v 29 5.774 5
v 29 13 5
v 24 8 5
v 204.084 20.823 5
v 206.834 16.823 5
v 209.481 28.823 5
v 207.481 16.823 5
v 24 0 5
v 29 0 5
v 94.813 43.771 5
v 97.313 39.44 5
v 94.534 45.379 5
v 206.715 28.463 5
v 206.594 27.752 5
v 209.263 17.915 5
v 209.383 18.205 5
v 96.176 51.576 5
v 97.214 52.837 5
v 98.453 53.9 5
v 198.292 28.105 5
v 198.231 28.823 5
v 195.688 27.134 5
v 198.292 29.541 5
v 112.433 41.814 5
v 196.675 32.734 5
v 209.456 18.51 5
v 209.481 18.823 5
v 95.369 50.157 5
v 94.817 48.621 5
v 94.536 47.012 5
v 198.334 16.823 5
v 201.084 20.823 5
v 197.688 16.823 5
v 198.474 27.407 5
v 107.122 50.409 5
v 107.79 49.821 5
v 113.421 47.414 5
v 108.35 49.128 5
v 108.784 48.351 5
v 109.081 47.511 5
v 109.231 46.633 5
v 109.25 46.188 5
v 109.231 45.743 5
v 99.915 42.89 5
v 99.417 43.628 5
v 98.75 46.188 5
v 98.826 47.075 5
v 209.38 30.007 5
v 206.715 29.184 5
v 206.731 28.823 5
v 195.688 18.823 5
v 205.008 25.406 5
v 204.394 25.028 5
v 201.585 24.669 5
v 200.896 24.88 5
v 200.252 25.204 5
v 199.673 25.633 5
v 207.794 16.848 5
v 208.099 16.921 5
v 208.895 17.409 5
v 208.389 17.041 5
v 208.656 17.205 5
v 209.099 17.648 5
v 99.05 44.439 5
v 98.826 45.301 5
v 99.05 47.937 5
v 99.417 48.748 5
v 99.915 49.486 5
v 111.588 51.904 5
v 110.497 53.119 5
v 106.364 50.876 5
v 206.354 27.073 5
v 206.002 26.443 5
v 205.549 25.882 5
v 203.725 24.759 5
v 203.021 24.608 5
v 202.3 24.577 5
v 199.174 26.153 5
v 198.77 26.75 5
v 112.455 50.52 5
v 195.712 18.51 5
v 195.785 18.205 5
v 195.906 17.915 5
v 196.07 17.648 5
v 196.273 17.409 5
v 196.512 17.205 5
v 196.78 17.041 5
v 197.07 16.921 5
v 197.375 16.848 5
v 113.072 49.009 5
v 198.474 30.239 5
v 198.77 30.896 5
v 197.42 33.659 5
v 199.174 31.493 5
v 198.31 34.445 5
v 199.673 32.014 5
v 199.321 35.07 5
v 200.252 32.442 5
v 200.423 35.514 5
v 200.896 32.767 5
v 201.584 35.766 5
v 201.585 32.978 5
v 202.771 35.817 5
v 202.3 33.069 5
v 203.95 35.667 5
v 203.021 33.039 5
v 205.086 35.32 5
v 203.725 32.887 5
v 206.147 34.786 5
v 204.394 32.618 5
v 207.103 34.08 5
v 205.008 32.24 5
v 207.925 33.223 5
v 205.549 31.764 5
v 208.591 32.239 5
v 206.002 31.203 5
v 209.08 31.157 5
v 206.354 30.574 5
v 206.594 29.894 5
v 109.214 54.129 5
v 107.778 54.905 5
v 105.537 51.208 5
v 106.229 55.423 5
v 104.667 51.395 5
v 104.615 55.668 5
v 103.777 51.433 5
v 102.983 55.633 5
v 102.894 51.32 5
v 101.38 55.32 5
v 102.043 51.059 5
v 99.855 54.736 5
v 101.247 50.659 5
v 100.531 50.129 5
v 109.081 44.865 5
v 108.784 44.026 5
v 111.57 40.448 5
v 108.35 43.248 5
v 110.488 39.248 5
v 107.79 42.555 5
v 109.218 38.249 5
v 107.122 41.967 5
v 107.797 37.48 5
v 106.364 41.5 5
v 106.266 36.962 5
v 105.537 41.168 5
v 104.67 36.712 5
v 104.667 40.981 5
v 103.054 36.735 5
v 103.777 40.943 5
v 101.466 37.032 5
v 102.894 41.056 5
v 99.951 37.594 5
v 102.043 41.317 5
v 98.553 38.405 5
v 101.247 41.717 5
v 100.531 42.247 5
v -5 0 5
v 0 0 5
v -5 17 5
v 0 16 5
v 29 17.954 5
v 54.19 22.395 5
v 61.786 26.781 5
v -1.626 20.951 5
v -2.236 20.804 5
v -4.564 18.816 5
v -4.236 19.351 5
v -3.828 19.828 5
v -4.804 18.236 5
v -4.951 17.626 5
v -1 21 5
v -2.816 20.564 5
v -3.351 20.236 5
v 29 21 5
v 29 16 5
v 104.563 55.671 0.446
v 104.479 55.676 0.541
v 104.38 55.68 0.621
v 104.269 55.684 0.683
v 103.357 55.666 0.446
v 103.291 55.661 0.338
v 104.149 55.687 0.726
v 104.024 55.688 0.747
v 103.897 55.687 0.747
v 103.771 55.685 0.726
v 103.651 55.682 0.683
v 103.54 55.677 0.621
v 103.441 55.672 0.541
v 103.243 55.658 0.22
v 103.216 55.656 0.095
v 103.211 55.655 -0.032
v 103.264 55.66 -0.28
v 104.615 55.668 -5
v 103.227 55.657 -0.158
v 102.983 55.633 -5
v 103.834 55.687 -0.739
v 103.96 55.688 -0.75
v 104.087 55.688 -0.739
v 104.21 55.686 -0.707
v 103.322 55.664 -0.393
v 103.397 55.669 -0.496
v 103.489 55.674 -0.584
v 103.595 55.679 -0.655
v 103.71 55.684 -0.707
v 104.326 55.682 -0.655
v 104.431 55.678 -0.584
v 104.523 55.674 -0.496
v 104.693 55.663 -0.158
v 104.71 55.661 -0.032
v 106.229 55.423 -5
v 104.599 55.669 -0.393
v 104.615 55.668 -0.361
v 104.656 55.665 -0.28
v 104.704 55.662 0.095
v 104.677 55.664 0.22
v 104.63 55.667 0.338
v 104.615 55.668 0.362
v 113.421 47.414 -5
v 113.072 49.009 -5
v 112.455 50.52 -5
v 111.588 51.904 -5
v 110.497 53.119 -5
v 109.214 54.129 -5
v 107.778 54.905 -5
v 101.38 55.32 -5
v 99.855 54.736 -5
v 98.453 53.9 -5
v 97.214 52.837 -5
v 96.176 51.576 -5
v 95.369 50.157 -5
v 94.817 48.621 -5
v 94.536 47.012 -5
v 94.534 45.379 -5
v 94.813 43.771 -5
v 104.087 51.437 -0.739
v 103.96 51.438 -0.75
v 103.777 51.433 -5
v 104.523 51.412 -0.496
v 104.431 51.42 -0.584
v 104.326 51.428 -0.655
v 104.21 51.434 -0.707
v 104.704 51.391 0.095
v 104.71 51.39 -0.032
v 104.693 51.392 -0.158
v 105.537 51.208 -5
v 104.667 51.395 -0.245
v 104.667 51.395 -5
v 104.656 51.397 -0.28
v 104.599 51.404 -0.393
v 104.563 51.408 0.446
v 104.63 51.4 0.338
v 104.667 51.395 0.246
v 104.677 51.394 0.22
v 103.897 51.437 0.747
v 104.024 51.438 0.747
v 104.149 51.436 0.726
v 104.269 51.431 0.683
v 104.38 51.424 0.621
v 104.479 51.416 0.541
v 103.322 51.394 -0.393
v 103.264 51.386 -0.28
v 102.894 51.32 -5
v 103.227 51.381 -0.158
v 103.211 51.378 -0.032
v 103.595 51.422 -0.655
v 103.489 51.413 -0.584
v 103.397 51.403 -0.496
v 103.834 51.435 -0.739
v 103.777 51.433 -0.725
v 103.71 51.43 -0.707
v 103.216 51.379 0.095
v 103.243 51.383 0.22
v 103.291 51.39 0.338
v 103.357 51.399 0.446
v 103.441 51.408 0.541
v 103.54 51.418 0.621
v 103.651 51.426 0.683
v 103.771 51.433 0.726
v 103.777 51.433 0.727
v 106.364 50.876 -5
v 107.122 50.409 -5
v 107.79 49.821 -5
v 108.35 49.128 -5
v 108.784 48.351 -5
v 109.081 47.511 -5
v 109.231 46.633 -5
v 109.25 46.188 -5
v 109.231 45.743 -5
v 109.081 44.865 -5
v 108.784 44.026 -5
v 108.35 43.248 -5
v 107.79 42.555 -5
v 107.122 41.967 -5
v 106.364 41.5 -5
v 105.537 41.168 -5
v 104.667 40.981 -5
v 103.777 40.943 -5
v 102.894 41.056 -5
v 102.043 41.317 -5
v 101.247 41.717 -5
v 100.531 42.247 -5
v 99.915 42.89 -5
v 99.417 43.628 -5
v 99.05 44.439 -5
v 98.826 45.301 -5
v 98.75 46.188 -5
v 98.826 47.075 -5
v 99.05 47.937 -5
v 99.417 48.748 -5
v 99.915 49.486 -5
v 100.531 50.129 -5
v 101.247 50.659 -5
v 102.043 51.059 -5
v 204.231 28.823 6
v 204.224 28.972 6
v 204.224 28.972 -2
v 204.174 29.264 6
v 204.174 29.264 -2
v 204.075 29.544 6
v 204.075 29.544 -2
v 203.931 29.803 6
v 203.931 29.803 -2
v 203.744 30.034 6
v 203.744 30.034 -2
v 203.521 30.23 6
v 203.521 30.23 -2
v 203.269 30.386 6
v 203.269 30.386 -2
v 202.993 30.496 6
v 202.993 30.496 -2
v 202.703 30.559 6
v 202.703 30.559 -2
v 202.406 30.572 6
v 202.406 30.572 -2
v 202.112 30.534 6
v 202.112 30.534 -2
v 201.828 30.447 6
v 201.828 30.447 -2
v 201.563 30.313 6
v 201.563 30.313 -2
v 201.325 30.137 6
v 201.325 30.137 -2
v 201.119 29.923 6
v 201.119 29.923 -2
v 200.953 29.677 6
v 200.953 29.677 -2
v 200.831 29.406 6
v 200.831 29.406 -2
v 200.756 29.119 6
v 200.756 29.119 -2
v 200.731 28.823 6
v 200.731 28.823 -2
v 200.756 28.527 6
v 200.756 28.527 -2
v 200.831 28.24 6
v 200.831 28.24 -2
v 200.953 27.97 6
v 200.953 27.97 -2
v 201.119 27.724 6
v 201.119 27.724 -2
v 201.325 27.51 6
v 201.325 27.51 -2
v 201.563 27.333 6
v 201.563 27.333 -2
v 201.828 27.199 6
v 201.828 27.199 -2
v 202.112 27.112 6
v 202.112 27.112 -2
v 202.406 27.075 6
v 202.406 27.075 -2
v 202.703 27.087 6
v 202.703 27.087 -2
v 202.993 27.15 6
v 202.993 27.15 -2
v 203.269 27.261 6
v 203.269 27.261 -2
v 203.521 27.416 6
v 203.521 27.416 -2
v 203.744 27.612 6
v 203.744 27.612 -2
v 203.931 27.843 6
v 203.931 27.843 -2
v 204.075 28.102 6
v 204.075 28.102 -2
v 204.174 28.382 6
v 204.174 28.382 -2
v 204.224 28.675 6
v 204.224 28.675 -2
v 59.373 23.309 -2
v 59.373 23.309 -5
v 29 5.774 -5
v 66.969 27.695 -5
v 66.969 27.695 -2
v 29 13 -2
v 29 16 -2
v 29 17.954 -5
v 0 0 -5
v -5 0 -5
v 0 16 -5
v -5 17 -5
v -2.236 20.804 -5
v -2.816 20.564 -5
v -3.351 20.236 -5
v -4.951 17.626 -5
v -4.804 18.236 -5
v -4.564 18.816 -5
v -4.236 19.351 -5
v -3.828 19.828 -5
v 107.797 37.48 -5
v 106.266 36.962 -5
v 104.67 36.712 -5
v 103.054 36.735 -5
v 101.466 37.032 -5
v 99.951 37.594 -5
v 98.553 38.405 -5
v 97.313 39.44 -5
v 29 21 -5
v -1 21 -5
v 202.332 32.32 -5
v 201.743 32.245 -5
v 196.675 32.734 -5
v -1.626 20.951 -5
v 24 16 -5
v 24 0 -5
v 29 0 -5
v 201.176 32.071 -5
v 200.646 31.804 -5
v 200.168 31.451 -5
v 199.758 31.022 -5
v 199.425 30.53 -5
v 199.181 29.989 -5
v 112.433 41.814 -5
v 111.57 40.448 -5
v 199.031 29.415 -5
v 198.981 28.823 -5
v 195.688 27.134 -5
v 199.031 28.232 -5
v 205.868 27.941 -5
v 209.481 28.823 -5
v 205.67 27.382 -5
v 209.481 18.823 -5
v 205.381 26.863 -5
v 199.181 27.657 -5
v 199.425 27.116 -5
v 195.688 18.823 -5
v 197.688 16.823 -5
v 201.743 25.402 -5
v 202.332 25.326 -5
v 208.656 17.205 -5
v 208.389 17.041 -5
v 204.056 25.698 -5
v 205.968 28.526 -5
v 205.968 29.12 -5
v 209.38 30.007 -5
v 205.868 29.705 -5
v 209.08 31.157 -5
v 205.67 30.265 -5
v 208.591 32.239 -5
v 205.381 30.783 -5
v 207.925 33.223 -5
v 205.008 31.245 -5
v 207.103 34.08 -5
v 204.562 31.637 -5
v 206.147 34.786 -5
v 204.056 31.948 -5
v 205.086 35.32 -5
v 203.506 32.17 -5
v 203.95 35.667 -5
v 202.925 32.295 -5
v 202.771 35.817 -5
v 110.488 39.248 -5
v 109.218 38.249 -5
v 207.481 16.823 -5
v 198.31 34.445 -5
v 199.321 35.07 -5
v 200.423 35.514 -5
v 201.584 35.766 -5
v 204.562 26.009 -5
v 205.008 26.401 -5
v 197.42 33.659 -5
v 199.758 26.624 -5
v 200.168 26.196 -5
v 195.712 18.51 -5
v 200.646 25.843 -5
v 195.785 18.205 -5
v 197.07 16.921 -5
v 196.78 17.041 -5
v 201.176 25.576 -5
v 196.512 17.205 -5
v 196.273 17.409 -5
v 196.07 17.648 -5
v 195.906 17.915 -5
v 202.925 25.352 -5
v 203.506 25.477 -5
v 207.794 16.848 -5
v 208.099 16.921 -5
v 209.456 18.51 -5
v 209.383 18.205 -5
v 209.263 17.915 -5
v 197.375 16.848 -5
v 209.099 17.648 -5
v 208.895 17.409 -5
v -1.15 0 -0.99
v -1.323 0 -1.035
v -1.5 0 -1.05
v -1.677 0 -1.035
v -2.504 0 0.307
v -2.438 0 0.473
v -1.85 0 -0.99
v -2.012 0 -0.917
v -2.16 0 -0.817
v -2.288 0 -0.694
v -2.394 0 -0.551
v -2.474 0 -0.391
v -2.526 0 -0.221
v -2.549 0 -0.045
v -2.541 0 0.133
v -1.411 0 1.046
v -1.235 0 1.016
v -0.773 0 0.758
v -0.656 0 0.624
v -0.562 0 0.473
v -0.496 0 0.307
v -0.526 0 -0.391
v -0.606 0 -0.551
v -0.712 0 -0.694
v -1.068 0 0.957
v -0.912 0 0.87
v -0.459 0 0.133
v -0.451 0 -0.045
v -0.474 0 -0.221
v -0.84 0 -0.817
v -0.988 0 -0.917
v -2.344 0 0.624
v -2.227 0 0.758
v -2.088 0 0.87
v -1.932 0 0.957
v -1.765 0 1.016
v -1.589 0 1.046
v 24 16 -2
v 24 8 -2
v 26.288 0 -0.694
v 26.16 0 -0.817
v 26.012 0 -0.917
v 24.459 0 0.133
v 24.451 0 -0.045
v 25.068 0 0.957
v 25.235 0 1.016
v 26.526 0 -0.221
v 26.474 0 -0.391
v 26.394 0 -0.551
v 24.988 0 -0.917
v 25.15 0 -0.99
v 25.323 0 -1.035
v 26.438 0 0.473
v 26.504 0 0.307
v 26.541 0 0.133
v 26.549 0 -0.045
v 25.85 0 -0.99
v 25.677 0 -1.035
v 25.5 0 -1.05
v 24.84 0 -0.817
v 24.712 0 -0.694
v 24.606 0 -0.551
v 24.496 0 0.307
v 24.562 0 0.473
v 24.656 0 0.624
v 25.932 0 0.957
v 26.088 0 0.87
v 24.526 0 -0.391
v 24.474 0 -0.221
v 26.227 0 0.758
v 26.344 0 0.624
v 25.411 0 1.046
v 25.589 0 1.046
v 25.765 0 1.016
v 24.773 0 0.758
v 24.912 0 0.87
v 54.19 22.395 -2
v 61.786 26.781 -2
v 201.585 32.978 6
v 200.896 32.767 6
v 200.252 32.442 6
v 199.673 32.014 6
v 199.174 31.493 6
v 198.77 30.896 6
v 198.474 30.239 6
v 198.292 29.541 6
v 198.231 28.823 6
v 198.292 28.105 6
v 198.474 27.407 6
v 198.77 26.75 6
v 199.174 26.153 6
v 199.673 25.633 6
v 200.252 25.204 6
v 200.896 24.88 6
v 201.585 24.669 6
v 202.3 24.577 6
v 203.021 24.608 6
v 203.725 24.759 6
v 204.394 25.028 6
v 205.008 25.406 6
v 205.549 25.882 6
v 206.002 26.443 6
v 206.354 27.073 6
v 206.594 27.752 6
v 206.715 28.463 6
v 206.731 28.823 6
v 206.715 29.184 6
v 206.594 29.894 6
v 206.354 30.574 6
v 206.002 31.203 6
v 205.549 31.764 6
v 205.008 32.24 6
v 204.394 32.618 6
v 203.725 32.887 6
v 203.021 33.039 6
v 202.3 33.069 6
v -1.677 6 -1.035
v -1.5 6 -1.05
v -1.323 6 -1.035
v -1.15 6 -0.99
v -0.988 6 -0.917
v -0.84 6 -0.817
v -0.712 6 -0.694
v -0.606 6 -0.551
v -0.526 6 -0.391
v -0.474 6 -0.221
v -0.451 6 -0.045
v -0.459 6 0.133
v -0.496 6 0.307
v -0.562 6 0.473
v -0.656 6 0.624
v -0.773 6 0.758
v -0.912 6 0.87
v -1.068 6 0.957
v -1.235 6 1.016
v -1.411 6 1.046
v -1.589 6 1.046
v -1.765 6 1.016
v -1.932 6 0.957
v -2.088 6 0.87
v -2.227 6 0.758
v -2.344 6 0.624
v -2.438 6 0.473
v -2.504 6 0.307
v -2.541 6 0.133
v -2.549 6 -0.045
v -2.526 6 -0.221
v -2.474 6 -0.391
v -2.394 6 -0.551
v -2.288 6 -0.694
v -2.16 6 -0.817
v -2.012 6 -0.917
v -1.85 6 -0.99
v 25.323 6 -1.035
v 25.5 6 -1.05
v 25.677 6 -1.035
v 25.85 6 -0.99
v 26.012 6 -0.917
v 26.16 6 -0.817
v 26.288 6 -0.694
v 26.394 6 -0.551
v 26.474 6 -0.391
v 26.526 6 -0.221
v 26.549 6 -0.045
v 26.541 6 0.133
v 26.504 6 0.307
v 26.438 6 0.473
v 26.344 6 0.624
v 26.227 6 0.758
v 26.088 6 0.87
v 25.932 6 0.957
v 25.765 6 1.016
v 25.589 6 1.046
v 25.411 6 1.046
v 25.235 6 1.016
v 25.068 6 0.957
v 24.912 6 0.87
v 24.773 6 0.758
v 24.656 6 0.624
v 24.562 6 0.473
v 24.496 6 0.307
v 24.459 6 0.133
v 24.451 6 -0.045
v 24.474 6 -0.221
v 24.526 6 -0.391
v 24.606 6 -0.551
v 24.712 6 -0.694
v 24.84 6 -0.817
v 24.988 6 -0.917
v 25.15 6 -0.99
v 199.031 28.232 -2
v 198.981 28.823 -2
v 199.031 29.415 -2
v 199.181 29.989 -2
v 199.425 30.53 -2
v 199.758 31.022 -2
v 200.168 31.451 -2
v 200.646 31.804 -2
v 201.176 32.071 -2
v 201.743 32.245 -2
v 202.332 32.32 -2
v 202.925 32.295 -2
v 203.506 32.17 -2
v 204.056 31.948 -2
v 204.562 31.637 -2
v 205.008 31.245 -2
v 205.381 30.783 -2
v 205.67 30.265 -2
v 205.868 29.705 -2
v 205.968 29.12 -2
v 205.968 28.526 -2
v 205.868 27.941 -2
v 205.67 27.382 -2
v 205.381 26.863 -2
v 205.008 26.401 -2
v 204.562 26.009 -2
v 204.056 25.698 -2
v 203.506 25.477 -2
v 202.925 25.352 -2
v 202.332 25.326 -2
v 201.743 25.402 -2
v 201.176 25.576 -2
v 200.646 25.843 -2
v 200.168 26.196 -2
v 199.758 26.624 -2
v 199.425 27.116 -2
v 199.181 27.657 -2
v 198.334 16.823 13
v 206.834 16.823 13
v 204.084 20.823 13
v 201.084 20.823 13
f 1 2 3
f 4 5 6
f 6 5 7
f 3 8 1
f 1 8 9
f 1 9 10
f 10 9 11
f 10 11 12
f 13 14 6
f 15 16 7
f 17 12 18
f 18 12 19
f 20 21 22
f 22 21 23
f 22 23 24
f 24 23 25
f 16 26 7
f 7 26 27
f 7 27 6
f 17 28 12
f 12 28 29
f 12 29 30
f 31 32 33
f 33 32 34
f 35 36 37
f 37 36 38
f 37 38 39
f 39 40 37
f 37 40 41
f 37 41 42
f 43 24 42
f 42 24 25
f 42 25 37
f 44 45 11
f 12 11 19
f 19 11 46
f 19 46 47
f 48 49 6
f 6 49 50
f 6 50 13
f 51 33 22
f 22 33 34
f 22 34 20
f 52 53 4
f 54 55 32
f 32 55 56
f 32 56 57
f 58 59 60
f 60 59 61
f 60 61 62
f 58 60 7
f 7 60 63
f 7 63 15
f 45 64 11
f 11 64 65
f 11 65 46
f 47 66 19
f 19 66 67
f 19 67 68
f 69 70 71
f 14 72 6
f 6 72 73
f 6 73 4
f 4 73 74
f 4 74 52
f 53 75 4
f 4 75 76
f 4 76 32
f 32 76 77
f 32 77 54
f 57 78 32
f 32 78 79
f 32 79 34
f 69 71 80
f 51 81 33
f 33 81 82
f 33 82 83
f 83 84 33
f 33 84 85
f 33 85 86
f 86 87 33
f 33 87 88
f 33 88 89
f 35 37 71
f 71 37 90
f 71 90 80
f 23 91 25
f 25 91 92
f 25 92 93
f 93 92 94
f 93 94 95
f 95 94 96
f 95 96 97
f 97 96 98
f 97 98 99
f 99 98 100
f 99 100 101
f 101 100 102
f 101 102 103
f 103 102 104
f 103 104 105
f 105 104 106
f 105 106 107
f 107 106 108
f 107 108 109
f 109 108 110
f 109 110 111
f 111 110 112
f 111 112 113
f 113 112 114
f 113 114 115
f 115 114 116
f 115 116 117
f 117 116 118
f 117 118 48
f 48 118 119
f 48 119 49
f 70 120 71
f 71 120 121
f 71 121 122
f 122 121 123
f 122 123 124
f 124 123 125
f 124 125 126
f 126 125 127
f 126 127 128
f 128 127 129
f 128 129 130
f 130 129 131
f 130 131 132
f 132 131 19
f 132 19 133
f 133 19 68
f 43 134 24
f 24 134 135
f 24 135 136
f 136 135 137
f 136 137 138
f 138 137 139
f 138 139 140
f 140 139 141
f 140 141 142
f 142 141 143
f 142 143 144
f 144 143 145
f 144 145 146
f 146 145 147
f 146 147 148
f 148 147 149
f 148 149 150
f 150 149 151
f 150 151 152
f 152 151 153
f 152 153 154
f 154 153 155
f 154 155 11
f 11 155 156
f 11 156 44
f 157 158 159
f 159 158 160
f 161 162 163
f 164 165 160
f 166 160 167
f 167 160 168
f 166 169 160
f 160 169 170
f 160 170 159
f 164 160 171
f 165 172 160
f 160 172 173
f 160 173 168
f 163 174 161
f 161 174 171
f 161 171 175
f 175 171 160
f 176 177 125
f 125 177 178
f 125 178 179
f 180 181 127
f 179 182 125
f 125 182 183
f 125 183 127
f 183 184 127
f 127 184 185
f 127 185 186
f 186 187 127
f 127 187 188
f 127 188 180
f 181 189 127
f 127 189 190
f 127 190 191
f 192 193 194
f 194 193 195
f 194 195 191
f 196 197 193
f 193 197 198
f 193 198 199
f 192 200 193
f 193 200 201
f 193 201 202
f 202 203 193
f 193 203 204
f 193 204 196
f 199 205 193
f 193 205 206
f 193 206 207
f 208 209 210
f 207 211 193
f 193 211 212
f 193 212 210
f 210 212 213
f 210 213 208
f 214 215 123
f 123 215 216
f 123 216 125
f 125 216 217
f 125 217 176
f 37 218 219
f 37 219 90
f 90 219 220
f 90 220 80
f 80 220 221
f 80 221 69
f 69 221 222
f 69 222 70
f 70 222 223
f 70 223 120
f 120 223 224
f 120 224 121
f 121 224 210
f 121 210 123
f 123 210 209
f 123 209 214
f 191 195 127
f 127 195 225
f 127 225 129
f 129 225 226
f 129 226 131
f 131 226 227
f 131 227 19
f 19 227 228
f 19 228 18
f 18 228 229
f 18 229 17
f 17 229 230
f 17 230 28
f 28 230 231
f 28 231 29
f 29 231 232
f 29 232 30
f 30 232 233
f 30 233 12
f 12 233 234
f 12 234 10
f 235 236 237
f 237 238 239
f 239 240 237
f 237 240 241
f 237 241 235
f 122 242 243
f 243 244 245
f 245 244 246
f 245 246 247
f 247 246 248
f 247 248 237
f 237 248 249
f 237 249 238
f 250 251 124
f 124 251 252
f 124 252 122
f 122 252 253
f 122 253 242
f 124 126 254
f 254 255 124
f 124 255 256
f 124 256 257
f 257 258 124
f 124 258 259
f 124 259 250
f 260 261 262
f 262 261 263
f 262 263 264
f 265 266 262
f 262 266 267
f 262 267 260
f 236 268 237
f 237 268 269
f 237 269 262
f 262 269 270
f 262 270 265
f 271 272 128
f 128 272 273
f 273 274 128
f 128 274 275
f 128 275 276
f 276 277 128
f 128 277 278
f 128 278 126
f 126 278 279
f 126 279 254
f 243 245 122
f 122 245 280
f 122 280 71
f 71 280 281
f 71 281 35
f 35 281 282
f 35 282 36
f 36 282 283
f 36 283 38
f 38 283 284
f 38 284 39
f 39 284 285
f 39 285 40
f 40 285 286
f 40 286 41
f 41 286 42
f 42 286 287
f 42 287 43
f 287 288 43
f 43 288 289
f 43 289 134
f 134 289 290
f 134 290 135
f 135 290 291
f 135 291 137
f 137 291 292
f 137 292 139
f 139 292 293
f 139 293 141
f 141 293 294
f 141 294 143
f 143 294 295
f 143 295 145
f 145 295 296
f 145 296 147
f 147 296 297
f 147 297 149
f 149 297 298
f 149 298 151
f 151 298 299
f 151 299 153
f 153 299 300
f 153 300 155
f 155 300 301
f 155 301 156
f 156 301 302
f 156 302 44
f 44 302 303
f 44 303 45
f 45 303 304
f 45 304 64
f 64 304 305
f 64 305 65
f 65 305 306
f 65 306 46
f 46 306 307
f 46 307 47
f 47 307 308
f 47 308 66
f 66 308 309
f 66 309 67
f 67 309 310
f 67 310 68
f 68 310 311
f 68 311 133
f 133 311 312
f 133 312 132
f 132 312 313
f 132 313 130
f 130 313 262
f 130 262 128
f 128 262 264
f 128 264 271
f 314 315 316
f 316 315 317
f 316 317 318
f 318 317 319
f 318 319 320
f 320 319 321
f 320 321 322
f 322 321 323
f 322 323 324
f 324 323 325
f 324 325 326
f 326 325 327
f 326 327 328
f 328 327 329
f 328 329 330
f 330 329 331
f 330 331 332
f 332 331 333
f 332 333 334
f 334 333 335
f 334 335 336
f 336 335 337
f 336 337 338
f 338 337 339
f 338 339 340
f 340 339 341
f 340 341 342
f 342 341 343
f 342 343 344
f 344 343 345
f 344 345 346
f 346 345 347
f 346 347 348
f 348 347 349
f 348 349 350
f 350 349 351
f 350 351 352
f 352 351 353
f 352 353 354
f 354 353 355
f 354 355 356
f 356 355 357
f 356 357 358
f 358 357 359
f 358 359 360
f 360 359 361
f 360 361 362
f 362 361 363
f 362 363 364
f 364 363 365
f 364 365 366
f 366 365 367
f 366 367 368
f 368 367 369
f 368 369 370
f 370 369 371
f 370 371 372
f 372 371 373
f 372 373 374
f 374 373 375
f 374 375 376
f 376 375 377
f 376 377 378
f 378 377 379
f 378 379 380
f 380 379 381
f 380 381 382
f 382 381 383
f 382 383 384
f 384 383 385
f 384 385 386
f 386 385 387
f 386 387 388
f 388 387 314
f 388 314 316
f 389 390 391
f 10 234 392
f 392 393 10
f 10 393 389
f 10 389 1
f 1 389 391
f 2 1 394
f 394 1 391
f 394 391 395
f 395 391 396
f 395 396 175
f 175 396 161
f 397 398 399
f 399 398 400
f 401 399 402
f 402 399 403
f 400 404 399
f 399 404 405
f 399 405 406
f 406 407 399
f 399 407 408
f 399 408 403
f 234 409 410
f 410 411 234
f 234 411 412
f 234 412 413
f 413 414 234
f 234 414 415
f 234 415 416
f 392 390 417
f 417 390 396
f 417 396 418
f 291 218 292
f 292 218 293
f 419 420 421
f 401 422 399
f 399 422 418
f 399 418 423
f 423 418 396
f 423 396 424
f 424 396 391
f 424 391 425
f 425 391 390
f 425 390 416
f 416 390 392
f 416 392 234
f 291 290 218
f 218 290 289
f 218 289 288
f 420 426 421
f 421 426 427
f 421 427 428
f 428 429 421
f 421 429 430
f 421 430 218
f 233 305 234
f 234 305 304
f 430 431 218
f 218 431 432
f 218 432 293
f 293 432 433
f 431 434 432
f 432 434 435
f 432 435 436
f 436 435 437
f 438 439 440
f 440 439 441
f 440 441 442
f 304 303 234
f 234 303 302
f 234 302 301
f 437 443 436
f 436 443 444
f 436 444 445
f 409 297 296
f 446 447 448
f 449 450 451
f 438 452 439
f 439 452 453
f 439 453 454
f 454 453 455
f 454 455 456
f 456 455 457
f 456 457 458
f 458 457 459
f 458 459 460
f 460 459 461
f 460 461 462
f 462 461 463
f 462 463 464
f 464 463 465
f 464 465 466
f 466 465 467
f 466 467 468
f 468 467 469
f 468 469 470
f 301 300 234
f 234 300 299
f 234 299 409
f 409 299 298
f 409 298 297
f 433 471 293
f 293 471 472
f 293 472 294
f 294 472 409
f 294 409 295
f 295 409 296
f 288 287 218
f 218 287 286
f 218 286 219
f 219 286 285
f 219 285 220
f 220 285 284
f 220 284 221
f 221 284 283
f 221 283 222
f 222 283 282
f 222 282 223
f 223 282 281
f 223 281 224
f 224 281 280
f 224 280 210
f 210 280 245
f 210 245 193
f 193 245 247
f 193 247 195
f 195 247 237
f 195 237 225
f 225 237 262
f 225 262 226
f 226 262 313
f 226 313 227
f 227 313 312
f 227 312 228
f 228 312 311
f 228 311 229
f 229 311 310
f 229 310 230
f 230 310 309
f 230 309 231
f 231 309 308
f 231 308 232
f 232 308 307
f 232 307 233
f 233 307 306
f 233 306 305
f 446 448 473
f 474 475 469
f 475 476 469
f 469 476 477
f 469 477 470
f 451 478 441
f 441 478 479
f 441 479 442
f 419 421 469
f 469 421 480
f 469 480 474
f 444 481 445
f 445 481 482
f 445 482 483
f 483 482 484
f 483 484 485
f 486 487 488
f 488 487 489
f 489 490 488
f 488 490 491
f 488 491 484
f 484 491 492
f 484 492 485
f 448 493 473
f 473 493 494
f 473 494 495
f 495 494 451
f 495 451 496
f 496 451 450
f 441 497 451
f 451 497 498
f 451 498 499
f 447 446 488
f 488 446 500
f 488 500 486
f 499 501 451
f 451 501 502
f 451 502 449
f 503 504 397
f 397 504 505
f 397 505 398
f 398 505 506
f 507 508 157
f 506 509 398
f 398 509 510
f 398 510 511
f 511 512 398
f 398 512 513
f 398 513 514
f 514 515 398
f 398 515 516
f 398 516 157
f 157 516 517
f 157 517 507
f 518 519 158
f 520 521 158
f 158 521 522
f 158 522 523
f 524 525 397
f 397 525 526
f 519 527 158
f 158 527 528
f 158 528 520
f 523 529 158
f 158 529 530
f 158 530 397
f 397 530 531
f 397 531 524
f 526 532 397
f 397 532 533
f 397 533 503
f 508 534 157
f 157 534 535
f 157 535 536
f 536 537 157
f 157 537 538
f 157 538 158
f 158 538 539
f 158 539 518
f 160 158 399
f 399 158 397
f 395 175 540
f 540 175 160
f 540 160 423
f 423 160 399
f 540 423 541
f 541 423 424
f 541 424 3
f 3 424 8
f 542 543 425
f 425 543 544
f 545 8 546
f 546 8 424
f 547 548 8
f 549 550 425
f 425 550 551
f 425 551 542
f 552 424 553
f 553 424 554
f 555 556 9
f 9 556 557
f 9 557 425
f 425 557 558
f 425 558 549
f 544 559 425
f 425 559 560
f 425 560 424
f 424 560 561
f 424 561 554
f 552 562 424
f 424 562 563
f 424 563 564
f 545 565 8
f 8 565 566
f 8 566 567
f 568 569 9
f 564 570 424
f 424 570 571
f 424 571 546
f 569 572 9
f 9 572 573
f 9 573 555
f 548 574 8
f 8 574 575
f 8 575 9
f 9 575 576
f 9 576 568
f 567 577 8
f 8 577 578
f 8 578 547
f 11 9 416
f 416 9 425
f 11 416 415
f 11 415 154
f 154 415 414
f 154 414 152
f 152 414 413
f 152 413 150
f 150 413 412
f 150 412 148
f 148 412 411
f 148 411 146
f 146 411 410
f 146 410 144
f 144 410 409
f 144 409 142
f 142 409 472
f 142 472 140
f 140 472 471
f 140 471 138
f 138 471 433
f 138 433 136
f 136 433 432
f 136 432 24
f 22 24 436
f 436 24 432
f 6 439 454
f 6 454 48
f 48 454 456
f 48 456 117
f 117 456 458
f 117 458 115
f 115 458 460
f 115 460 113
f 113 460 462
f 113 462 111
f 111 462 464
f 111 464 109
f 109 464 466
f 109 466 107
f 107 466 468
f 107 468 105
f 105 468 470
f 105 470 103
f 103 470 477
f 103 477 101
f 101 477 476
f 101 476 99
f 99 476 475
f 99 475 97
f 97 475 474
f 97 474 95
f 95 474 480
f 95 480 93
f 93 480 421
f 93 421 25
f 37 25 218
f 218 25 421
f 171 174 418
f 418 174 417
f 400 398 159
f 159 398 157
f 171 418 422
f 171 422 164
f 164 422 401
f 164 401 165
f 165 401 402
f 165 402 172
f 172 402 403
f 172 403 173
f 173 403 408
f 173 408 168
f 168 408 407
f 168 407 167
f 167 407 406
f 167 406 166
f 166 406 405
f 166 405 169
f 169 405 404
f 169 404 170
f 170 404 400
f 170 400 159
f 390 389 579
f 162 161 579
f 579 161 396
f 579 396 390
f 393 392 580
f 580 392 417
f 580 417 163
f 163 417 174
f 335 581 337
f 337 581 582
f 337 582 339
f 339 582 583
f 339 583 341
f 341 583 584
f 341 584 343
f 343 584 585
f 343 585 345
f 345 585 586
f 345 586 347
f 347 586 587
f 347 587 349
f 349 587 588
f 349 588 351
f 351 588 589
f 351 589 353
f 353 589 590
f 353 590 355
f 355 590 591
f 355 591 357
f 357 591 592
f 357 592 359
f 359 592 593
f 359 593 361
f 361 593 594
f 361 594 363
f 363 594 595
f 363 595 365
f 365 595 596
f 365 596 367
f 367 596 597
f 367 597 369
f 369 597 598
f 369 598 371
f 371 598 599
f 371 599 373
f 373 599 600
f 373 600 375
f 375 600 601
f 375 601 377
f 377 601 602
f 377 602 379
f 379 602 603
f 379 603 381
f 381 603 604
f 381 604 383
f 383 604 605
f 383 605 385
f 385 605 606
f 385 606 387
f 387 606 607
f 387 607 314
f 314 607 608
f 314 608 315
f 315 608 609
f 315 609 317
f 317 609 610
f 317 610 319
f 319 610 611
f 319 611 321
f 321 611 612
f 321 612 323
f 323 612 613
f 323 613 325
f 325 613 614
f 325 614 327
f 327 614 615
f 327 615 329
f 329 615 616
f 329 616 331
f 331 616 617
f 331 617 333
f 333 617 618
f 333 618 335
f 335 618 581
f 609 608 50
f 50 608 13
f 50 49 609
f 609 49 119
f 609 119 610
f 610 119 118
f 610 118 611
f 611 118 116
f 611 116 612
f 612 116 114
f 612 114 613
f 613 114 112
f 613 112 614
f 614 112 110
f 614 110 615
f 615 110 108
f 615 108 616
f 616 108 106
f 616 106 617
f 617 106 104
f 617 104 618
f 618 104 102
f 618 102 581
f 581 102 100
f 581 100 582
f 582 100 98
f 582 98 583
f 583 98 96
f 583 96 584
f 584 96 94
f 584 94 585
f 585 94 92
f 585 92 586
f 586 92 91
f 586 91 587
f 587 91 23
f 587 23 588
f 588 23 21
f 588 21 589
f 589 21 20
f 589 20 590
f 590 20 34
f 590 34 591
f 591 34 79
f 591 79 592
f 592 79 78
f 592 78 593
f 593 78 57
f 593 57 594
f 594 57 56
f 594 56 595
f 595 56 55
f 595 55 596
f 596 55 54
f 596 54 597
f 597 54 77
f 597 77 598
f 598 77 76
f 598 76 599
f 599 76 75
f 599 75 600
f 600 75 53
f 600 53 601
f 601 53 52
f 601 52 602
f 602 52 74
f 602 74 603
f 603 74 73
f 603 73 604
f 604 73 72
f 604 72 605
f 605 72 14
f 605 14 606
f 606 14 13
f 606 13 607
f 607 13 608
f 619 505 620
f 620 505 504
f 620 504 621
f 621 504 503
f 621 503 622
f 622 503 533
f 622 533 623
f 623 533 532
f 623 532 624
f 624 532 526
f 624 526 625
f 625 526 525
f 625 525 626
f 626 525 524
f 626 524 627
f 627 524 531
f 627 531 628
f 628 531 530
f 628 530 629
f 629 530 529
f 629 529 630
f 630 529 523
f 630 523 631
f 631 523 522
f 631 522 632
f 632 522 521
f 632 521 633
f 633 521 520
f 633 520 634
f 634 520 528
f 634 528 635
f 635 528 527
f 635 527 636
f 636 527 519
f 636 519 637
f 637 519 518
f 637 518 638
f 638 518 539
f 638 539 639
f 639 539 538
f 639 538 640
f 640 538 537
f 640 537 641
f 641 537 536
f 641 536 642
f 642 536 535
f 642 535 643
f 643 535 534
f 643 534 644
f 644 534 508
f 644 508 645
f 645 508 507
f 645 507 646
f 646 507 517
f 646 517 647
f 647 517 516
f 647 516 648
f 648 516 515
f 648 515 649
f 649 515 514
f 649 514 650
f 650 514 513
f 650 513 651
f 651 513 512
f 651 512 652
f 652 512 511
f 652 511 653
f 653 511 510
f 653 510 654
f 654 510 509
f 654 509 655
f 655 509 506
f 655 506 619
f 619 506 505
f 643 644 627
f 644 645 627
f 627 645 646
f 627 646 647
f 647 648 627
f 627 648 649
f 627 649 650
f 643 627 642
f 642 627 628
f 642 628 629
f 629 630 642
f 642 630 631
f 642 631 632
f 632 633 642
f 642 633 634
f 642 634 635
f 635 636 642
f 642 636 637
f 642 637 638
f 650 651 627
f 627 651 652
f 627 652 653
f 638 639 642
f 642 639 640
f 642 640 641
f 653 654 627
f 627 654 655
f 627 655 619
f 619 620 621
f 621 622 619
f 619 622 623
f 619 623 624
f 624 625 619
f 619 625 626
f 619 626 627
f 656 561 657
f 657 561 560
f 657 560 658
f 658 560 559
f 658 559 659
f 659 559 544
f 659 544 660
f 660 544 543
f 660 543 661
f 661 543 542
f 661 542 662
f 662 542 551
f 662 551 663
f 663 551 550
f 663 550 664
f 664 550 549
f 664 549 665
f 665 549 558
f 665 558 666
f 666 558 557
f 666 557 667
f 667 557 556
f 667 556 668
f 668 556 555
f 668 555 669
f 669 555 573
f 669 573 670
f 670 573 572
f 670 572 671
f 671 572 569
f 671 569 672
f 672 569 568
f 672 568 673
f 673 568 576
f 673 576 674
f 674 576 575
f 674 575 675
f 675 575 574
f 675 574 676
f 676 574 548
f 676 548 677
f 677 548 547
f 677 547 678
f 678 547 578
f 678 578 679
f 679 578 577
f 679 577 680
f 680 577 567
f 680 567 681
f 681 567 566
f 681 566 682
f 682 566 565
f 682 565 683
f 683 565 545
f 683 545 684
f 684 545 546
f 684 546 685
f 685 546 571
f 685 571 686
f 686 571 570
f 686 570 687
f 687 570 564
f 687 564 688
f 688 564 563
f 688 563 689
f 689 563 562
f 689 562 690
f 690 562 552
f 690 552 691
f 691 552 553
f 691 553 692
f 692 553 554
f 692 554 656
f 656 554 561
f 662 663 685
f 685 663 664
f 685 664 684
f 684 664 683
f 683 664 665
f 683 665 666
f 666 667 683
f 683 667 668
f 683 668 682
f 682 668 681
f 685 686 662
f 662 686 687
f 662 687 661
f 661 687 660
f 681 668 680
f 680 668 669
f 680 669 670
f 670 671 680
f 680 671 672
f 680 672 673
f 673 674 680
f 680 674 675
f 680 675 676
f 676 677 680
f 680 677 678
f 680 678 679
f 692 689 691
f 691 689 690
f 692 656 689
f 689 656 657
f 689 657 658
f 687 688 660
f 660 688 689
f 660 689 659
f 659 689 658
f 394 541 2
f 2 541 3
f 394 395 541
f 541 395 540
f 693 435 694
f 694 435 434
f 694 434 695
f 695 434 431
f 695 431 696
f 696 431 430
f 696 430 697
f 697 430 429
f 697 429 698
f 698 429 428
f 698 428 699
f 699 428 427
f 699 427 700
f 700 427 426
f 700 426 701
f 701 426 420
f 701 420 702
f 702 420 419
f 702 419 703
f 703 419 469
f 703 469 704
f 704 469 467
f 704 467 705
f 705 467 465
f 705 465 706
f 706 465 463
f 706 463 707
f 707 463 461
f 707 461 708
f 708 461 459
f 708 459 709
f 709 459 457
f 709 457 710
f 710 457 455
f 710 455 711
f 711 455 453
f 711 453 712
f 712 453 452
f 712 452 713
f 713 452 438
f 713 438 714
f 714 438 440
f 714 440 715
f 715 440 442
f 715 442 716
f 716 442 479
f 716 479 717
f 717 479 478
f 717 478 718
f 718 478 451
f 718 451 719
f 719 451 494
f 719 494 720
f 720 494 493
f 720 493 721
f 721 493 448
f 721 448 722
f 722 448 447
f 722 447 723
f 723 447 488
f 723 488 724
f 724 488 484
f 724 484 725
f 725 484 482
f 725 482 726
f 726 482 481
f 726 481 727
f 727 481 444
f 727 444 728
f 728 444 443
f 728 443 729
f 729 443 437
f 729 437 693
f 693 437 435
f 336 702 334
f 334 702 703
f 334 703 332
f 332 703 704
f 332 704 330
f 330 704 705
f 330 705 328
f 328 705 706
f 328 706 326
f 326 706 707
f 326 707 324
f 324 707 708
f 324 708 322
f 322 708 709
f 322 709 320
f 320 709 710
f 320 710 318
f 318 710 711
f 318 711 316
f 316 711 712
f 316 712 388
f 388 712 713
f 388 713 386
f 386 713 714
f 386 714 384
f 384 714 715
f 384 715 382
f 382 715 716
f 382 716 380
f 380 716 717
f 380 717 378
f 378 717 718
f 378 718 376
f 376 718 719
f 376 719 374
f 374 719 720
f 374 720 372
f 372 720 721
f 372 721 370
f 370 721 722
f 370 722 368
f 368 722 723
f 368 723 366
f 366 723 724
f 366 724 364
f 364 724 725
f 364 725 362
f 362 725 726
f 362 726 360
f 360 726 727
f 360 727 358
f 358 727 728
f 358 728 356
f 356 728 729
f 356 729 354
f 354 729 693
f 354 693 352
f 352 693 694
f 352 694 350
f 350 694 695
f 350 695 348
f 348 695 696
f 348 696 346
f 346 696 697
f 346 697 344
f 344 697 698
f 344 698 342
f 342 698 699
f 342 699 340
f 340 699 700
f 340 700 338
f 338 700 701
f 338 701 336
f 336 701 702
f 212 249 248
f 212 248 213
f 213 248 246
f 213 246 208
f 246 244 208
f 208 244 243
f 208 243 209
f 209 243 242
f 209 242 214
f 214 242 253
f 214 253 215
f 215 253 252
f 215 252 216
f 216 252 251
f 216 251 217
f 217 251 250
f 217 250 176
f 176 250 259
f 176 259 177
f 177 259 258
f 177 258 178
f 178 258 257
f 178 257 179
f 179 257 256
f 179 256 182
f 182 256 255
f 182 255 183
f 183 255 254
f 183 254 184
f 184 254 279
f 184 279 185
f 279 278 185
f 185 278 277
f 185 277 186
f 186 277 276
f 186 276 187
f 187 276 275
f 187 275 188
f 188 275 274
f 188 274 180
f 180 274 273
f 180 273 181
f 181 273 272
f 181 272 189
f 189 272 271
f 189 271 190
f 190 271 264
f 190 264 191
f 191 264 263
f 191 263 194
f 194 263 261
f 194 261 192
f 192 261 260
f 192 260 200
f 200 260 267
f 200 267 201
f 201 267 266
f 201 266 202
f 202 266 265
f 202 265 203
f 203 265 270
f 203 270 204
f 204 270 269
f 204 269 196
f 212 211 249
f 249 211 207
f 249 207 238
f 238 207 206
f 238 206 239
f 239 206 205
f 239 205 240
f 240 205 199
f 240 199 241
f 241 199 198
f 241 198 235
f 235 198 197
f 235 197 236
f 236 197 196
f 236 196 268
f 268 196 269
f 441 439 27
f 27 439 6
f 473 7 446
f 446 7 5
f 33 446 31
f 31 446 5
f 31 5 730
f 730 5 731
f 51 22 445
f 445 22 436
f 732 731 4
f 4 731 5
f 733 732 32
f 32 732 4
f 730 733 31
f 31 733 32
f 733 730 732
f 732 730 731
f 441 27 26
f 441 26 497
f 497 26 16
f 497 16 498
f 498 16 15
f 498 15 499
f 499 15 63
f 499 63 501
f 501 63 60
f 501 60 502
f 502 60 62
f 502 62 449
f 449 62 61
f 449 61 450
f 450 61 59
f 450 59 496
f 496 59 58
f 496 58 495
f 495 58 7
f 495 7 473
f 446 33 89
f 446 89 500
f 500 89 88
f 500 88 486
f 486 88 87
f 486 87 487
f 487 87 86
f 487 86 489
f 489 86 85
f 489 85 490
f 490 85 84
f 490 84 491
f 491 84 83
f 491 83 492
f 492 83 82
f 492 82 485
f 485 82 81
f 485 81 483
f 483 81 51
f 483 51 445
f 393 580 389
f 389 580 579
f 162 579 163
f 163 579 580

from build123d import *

# Parameters (mm, degrees)
SKICA1_R                 = 5.25
P_IDAT_VYSUNUT_M1_DEPTH  = 5
ZAOBLIT1_R               = 4
P_IDAT_VYSUNUT_M3_DEPTH  = 5
SKICA5_R                 = 4.25
SKICA5_R_2               = 1.75
P_IDAT_VYSUNUT_M4_DEPTH  = 1
SKICA8_R                 = 1.05
ODEBRAT_VYSUNUT_M3_DEPTH = 6
ODEBRAT_VYSUNUT_M4_DEPTH = 7
SKICA2_R                 = 1.75
ODEBRAT_VYSUNUT_M5_DEPTH = 10
SKICA10_R                = 3.5
ODEBRAT_VYSUNUT_M6_DEPTH = 3
ODEBRAT_START            = 50
SKICA11_R                = 0.75
ODEBRAT_VYSUNUT_M7_DEPTH = 10
P_IDAT_VYSUNUT_M5_DEPTH  = 10
P_IDAT_VYSUNUT_M6_DEPTH  = 8
ZAOBLIT2_R               = 2
ODEBRAT_VYSUNUT_M8_DEPTH = 7


with BuildPart() as part:
    # Skica1 → Přidat vysunutím1 (new body, symmetric)
    with BuildSketch(Plane.XY):
        with BuildLine():
            Line((0, 0), (0, 16))
            Line((0, 16), (24, 16))
            Line((24, 16), (24, 0))
            Line((24, 0), (29, 0))
            Line((29, 0), (97.312746067, 39.440382331))
            ThreePointArc((97.312746067, 39.440382331), (105.473420704, 36.802978572), (112.433277726, 41.81425579))
            Line((112.433277726, 41.81425579), (195.687578405, 27.134276321))
            ThreePointArc((195.687578405, 27.134276321), (209.374429572, 27.607666525), (196.674905514, 32.733686604))
            Line((196.674905514, 32.733686604), (113.420604835, 47.413666074))
            ThreePointArc((113.420604835, 47.413666074), (102.174688824, 55.511016714), (94.812746067, 43.77050935))
            Line((94.812746067, 43.77050935), (29, 5.773502692))
            Line((29, 5.773502692), (29, 21))
            Line((29, 21), (-5, 21))
            Line((-5, 21), (-5, 0))
            Line((-5, 0), (0, 0))
        make_face()
        with Locations((104, 46.188021535)):
            Circle(SKICA1_R, mode=Mode.SUBTRACT)
    extrude(amount=P_IDAT_VYSUNUT_M1_DEPTH, both=True)

    # Zaoblit1
    zaoblit1_edges = [part.edges().sort_by_distance(p)[0] for p in [
        (-5, 21, 0),
    ]]
    fillet(zaoblit1_edges, radius=ZAOBLIT1_R)

    # Skica4 → Přidat vysunutím3 (add, symmetric)
    with BuildSketch(Plane.XY):
        Polygon((29, 21), (66.969109888, 27.694978507), (59.37284323, 23.309271907), (29, 17.953720164), align=None)
    extrude(amount=P_IDAT_VYSUNUT_M3_DEPTH, both=True)

    # Skica5 → Přidat vysunutím4 (add)
    with BuildSketch(Plane.XY.offset(5)):
        with Locations((202.480775301, 28.823203768)):
            Circle(SKICA5_R)
        with Locations((202.480775301, 28.823203768)):
            Circle(SKICA5_R_2, mode=Mode.SUBTRACT)
    extrude(amount=P_IDAT_VYSUNUT_M4_DEPTH)

    # Skica8 → Odebrat vysunutím3 (cut)
    with BuildSketch(Plane.XZ):
        with Locations((-1.5, 0)):
            Circle(SKICA8_R)
        with Locations((25.5, 0)):
            Circle(SKICA8_R)
    extrude(amount=-ODEBRAT_VYSUNUT_M3_DEPTH, mode=Mode.SUBTRACT)

    # Skica9 → Odebrat vysunutím4 (cut)
    with BuildSketch(Plane.XY.offset(5)):
        Polygon((24, 16), (29, 16), (29, 13), (24, 8), align=None)
    extrude(amount=-ODEBRAT_VYSUNUT_M4_DEPTH, mode=Mode.SUBTRACT)

    # Skica2 → Odebrat vysunutím5 (cut)
    with BuildSketch(Plane.XY.offset(5)):
        with Locations((202.480775301, 28.823203768)):
            Circle(SKICA2_R)
    extrude(amount=-ODEBRAT_VYSUNUT_M5_DEPTH, mode=Mode.SUBTRACT)

    # Skica10 → Odebrat vysunutím6 (cut)
    with BuildSketch(Plane(origin=(0, 0, -5), x_dir=(-1, 0, 0), z_dir=(0, 0, -1))):
        with Locations((-202.480775301, 28.823203768)):
            Circle(SKICA10_R)
    extrude(amount=-ODEBRAT_VYSUNUT_M6_DEPTH, mode=Mode.SUBTRACT)

    # Skica11 → Odebrat vysunutím7 (cut)
    with BuildSketch(Plane(origin=(0, 0, 0), x_dir=(1, 0, 0), z_dir=(0, 1, 0)).offset(ODEBRAT_START)):
        with Locations((103.960302418, 0)):
            Circle(SKICA11_R)
    extrude(amount=ODEBRAT_VYSUNUT_M7_DEPTH, mode=Mode.SUBTRACT)

    # Skica12 → Přidat vysunutím5 (add)
    with BuildSketch(Plane.XY.offset(5)):
        with BuildLine():
            Line((195.687578405, 27.134276321), (195.687578405, 16.823203768))
            Line((195.687578405, 16.823203768), (209.480775301, 16.823203768))
            Line((209.480775301, 16.823203768), (209.480775301, 28.823203768))
            ThreePointArc((209.480775301, 28.823203768), (203.331546047, 21.875096894), (195.687578405, 27.134276321))
        make_face()
    extrude(amount=-P_IDAT_VYSUNUT_M5_DEPTH)

    # Skica13 → Přidat vysunutím6 (add)
    with BuildSketch(Plane.XY.offset(5)):
        Polygon((201.084176853, 20.823203768), (204.084176853, 20.823203768), (206.834176853, 16.823203768), (198.334176853, 16.823203768), align=None)
    extrude(amount=P_IDAT_VYSUNUT_M6_DEPTH)

    # Zaoblit2
    zaoblit2_edges = [part.edges().sort_by_distance(p)[0] for p in [
        (209.480775301, 16.823203768, 0),
        (195.687578405, 16.823203768, 0),
    ]]
    fillet(zaoblit2_edges, radius=ZAOBLIT2_R)

    # Skica14 → Odebrat vysunutím8 (cut)
    with BuildSketch(Plane.XY.offset(5)):
        Polygon((59.37284323, 23.309271907), (66.969109888, 27.694978507), (61.786216453, 26.781094556), (54.189949795, 22.395387956), align=None)
    extrude(amount=-ODEBRAT_VYSUNUT_M8_DEPTH, mode=Mode.SUBTRACT)


solid = part.part
